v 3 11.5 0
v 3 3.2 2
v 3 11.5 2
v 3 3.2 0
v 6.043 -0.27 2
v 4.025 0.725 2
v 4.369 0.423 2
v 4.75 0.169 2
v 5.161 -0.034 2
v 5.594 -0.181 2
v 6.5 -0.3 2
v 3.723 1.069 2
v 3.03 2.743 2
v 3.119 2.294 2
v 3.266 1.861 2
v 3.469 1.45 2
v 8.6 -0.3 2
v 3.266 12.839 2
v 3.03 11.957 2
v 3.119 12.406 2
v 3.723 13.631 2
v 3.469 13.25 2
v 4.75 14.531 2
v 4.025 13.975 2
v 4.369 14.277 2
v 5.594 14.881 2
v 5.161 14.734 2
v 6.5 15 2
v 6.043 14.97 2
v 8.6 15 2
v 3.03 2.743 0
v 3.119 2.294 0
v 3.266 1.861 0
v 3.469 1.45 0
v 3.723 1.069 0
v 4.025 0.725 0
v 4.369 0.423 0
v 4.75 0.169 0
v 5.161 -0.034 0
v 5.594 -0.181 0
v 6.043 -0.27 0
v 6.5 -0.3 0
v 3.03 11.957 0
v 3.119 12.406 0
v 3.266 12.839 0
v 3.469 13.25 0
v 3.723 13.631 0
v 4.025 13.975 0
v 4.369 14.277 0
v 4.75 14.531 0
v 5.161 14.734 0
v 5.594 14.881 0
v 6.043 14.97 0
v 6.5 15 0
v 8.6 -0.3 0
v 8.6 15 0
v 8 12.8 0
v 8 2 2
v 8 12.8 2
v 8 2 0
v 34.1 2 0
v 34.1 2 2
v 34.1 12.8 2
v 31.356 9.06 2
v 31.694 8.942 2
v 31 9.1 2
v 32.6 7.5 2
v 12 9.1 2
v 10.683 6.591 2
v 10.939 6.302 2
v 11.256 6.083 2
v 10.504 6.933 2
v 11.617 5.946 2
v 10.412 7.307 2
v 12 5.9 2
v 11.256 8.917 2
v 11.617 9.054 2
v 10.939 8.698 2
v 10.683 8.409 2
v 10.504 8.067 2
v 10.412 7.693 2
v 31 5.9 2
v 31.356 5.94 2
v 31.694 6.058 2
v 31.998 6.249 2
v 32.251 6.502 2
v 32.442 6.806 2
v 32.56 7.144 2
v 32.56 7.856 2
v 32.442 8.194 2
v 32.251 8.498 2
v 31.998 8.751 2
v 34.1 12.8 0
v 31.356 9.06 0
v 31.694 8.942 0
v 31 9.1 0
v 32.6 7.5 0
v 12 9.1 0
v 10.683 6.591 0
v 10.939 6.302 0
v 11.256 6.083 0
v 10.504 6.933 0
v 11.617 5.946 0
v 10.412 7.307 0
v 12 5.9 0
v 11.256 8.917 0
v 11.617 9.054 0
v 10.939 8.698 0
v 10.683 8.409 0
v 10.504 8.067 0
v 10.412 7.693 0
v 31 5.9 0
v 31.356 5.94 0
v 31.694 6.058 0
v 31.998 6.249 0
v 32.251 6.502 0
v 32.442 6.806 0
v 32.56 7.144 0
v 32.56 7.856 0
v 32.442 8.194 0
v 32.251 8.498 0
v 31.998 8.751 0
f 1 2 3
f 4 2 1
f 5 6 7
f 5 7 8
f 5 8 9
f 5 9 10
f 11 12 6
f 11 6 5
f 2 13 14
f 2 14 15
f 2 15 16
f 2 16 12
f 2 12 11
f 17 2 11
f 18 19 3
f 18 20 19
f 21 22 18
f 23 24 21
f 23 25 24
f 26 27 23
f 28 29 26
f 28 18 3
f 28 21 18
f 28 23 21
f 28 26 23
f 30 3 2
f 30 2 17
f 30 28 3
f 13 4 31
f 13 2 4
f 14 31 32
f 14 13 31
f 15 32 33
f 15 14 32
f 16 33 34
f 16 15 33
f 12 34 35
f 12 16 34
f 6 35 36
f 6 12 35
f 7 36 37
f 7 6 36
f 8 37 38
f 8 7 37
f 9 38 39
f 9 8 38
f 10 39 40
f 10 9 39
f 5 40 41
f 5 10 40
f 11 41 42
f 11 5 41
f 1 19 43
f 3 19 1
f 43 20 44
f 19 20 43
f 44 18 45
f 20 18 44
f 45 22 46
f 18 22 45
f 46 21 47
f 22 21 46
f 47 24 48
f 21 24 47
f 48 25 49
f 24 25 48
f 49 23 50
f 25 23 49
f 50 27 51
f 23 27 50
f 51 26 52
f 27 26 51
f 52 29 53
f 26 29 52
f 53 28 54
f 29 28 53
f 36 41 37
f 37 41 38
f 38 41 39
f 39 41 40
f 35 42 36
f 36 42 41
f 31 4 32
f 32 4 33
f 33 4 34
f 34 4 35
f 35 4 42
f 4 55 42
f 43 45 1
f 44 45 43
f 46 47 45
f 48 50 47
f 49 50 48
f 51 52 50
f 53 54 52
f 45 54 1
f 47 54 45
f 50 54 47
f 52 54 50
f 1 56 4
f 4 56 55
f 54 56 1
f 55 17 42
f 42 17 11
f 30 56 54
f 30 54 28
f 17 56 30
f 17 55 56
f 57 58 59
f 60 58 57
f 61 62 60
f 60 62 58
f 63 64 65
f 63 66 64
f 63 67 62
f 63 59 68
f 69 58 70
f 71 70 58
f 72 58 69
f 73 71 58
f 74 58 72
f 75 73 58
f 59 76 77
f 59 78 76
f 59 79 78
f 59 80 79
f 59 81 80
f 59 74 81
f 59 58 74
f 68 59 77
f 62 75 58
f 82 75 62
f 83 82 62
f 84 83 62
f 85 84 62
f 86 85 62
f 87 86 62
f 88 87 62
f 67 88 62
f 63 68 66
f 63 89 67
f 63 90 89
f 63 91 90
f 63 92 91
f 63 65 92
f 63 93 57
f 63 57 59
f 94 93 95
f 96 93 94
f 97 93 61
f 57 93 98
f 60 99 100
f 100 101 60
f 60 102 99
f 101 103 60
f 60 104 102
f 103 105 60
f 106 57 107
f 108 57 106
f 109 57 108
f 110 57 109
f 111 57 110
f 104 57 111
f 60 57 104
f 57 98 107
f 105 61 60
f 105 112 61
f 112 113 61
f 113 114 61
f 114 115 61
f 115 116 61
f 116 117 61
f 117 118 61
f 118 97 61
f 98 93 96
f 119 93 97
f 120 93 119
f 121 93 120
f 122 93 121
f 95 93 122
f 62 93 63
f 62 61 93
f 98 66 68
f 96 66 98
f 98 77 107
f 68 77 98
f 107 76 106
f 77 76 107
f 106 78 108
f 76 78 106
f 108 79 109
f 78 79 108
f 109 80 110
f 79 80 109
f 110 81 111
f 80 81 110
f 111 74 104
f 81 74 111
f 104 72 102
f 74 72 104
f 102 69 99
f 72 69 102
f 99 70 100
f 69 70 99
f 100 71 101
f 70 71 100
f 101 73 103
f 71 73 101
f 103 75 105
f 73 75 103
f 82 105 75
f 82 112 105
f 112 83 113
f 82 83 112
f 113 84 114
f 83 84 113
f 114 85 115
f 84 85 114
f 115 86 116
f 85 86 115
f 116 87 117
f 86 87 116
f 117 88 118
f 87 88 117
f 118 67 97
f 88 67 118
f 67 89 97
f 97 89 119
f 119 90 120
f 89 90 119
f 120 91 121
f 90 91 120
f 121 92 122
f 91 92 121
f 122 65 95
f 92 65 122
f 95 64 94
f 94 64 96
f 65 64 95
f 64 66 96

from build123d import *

# Parameters (mm, degrees)
CYLINDER001_R     = 1.6
CYLINDER001_DEPTH = 10
CYLINDER_R        = 1.6
CYLINDER_DEPTH    = 10
BOX002_W          = 19
BOX002_H          = 3.2
BOX002_DEPTH      = 10
BOX001_W          = 26.1
BOX001_H          = 10.8
BOX001_DEPTH      = 2
BOX_W             = 5.6
BOX_H             = 15.3
BOX_DEPTH         = 2
FILLET_R          = 3.5
FILLET001_R       = 3.5


with BuildPart() as cilindro001:
    # Cylinder001 → Cylinder001 (new body)
    with BuildSketch(Plane(origin=(31, 7.5, -3), x_dir=(1, 0, 0), z_dir=(0, 0, 1))):
        Circle(CYLINDER001_R)
    extrude(amount=CYLINDER001_DEPTH)


with BuildPart() as cilindro:
    # Cylinder → Cylinder (new body)
    with BuildSketch(Plane(origin=(12, 7.5, -3), x_dir=(1, 0, 0), z_dir=(0, 0, 1))):
        Circle(CYLINDER_R)
    extrude(amount=CYLINDER_DEPTH)


with BuildPart() as fusion:
    # Box002 → Box002 (new body)
    with BuildSketch(Plane(origin=(12, 5.9, -2), x_dir=(1, 0, 0), z_dir=(0, 0, 1))):
        with Locations((9.5, 1.6)):
            Rectangle(BOX002_W, BOX002_H)
    extrude(amount=BOX002_DEPTH)

    # Fusion: union Cilindro001, Cilindro
    add(cilindro001.part)
    add(cilindro.part)


with BuildPart() as cut:
    # Box001 → Box001 (new body)
    with BuildSketch(Plane(origin=(8, 2, 0), x_dir=(1, 0, 0), z_dir=(0, 0, 1))):
        with Locations((13.05, 5.4)):
            Rectangle(BOX001_W, BOX001_H)
    extrude(amount=BOX001_DEPTH)

    # Cut: cut Fusion
    add(fusion.part, mode=Mode.SUBTRACT)


with BuildPart() as fillet001:
    # Box → Box (new body)
    with BuildSketch(Plane(origin=(3, -0.3, 0), x_dir=(1, 0, 0), z_dir=(0, 0, 1))):
        with Locations((2.8, 7.65)):
            Rectangle(BOX_W, BOX_H)
    extrude(amount=BOX_DEPTH)

    # Fillet
    fillet_edges = [fillet001.edges().sort_by_distance(p)[0] for p in [
        (3, 15, 1),
    ]]
    fillet(fillet_edges, radius=FILLET_R)

    # Fillet001
    fillet001_edges = [fillet001.edges().sort_by_distance(p)[0] for p in [
        (3, -0.3, 1),
    ]]
    fillet(fillet001_edges, radius=FILLET001_R)


solid = Compound([cut.part, fillet001.part])
